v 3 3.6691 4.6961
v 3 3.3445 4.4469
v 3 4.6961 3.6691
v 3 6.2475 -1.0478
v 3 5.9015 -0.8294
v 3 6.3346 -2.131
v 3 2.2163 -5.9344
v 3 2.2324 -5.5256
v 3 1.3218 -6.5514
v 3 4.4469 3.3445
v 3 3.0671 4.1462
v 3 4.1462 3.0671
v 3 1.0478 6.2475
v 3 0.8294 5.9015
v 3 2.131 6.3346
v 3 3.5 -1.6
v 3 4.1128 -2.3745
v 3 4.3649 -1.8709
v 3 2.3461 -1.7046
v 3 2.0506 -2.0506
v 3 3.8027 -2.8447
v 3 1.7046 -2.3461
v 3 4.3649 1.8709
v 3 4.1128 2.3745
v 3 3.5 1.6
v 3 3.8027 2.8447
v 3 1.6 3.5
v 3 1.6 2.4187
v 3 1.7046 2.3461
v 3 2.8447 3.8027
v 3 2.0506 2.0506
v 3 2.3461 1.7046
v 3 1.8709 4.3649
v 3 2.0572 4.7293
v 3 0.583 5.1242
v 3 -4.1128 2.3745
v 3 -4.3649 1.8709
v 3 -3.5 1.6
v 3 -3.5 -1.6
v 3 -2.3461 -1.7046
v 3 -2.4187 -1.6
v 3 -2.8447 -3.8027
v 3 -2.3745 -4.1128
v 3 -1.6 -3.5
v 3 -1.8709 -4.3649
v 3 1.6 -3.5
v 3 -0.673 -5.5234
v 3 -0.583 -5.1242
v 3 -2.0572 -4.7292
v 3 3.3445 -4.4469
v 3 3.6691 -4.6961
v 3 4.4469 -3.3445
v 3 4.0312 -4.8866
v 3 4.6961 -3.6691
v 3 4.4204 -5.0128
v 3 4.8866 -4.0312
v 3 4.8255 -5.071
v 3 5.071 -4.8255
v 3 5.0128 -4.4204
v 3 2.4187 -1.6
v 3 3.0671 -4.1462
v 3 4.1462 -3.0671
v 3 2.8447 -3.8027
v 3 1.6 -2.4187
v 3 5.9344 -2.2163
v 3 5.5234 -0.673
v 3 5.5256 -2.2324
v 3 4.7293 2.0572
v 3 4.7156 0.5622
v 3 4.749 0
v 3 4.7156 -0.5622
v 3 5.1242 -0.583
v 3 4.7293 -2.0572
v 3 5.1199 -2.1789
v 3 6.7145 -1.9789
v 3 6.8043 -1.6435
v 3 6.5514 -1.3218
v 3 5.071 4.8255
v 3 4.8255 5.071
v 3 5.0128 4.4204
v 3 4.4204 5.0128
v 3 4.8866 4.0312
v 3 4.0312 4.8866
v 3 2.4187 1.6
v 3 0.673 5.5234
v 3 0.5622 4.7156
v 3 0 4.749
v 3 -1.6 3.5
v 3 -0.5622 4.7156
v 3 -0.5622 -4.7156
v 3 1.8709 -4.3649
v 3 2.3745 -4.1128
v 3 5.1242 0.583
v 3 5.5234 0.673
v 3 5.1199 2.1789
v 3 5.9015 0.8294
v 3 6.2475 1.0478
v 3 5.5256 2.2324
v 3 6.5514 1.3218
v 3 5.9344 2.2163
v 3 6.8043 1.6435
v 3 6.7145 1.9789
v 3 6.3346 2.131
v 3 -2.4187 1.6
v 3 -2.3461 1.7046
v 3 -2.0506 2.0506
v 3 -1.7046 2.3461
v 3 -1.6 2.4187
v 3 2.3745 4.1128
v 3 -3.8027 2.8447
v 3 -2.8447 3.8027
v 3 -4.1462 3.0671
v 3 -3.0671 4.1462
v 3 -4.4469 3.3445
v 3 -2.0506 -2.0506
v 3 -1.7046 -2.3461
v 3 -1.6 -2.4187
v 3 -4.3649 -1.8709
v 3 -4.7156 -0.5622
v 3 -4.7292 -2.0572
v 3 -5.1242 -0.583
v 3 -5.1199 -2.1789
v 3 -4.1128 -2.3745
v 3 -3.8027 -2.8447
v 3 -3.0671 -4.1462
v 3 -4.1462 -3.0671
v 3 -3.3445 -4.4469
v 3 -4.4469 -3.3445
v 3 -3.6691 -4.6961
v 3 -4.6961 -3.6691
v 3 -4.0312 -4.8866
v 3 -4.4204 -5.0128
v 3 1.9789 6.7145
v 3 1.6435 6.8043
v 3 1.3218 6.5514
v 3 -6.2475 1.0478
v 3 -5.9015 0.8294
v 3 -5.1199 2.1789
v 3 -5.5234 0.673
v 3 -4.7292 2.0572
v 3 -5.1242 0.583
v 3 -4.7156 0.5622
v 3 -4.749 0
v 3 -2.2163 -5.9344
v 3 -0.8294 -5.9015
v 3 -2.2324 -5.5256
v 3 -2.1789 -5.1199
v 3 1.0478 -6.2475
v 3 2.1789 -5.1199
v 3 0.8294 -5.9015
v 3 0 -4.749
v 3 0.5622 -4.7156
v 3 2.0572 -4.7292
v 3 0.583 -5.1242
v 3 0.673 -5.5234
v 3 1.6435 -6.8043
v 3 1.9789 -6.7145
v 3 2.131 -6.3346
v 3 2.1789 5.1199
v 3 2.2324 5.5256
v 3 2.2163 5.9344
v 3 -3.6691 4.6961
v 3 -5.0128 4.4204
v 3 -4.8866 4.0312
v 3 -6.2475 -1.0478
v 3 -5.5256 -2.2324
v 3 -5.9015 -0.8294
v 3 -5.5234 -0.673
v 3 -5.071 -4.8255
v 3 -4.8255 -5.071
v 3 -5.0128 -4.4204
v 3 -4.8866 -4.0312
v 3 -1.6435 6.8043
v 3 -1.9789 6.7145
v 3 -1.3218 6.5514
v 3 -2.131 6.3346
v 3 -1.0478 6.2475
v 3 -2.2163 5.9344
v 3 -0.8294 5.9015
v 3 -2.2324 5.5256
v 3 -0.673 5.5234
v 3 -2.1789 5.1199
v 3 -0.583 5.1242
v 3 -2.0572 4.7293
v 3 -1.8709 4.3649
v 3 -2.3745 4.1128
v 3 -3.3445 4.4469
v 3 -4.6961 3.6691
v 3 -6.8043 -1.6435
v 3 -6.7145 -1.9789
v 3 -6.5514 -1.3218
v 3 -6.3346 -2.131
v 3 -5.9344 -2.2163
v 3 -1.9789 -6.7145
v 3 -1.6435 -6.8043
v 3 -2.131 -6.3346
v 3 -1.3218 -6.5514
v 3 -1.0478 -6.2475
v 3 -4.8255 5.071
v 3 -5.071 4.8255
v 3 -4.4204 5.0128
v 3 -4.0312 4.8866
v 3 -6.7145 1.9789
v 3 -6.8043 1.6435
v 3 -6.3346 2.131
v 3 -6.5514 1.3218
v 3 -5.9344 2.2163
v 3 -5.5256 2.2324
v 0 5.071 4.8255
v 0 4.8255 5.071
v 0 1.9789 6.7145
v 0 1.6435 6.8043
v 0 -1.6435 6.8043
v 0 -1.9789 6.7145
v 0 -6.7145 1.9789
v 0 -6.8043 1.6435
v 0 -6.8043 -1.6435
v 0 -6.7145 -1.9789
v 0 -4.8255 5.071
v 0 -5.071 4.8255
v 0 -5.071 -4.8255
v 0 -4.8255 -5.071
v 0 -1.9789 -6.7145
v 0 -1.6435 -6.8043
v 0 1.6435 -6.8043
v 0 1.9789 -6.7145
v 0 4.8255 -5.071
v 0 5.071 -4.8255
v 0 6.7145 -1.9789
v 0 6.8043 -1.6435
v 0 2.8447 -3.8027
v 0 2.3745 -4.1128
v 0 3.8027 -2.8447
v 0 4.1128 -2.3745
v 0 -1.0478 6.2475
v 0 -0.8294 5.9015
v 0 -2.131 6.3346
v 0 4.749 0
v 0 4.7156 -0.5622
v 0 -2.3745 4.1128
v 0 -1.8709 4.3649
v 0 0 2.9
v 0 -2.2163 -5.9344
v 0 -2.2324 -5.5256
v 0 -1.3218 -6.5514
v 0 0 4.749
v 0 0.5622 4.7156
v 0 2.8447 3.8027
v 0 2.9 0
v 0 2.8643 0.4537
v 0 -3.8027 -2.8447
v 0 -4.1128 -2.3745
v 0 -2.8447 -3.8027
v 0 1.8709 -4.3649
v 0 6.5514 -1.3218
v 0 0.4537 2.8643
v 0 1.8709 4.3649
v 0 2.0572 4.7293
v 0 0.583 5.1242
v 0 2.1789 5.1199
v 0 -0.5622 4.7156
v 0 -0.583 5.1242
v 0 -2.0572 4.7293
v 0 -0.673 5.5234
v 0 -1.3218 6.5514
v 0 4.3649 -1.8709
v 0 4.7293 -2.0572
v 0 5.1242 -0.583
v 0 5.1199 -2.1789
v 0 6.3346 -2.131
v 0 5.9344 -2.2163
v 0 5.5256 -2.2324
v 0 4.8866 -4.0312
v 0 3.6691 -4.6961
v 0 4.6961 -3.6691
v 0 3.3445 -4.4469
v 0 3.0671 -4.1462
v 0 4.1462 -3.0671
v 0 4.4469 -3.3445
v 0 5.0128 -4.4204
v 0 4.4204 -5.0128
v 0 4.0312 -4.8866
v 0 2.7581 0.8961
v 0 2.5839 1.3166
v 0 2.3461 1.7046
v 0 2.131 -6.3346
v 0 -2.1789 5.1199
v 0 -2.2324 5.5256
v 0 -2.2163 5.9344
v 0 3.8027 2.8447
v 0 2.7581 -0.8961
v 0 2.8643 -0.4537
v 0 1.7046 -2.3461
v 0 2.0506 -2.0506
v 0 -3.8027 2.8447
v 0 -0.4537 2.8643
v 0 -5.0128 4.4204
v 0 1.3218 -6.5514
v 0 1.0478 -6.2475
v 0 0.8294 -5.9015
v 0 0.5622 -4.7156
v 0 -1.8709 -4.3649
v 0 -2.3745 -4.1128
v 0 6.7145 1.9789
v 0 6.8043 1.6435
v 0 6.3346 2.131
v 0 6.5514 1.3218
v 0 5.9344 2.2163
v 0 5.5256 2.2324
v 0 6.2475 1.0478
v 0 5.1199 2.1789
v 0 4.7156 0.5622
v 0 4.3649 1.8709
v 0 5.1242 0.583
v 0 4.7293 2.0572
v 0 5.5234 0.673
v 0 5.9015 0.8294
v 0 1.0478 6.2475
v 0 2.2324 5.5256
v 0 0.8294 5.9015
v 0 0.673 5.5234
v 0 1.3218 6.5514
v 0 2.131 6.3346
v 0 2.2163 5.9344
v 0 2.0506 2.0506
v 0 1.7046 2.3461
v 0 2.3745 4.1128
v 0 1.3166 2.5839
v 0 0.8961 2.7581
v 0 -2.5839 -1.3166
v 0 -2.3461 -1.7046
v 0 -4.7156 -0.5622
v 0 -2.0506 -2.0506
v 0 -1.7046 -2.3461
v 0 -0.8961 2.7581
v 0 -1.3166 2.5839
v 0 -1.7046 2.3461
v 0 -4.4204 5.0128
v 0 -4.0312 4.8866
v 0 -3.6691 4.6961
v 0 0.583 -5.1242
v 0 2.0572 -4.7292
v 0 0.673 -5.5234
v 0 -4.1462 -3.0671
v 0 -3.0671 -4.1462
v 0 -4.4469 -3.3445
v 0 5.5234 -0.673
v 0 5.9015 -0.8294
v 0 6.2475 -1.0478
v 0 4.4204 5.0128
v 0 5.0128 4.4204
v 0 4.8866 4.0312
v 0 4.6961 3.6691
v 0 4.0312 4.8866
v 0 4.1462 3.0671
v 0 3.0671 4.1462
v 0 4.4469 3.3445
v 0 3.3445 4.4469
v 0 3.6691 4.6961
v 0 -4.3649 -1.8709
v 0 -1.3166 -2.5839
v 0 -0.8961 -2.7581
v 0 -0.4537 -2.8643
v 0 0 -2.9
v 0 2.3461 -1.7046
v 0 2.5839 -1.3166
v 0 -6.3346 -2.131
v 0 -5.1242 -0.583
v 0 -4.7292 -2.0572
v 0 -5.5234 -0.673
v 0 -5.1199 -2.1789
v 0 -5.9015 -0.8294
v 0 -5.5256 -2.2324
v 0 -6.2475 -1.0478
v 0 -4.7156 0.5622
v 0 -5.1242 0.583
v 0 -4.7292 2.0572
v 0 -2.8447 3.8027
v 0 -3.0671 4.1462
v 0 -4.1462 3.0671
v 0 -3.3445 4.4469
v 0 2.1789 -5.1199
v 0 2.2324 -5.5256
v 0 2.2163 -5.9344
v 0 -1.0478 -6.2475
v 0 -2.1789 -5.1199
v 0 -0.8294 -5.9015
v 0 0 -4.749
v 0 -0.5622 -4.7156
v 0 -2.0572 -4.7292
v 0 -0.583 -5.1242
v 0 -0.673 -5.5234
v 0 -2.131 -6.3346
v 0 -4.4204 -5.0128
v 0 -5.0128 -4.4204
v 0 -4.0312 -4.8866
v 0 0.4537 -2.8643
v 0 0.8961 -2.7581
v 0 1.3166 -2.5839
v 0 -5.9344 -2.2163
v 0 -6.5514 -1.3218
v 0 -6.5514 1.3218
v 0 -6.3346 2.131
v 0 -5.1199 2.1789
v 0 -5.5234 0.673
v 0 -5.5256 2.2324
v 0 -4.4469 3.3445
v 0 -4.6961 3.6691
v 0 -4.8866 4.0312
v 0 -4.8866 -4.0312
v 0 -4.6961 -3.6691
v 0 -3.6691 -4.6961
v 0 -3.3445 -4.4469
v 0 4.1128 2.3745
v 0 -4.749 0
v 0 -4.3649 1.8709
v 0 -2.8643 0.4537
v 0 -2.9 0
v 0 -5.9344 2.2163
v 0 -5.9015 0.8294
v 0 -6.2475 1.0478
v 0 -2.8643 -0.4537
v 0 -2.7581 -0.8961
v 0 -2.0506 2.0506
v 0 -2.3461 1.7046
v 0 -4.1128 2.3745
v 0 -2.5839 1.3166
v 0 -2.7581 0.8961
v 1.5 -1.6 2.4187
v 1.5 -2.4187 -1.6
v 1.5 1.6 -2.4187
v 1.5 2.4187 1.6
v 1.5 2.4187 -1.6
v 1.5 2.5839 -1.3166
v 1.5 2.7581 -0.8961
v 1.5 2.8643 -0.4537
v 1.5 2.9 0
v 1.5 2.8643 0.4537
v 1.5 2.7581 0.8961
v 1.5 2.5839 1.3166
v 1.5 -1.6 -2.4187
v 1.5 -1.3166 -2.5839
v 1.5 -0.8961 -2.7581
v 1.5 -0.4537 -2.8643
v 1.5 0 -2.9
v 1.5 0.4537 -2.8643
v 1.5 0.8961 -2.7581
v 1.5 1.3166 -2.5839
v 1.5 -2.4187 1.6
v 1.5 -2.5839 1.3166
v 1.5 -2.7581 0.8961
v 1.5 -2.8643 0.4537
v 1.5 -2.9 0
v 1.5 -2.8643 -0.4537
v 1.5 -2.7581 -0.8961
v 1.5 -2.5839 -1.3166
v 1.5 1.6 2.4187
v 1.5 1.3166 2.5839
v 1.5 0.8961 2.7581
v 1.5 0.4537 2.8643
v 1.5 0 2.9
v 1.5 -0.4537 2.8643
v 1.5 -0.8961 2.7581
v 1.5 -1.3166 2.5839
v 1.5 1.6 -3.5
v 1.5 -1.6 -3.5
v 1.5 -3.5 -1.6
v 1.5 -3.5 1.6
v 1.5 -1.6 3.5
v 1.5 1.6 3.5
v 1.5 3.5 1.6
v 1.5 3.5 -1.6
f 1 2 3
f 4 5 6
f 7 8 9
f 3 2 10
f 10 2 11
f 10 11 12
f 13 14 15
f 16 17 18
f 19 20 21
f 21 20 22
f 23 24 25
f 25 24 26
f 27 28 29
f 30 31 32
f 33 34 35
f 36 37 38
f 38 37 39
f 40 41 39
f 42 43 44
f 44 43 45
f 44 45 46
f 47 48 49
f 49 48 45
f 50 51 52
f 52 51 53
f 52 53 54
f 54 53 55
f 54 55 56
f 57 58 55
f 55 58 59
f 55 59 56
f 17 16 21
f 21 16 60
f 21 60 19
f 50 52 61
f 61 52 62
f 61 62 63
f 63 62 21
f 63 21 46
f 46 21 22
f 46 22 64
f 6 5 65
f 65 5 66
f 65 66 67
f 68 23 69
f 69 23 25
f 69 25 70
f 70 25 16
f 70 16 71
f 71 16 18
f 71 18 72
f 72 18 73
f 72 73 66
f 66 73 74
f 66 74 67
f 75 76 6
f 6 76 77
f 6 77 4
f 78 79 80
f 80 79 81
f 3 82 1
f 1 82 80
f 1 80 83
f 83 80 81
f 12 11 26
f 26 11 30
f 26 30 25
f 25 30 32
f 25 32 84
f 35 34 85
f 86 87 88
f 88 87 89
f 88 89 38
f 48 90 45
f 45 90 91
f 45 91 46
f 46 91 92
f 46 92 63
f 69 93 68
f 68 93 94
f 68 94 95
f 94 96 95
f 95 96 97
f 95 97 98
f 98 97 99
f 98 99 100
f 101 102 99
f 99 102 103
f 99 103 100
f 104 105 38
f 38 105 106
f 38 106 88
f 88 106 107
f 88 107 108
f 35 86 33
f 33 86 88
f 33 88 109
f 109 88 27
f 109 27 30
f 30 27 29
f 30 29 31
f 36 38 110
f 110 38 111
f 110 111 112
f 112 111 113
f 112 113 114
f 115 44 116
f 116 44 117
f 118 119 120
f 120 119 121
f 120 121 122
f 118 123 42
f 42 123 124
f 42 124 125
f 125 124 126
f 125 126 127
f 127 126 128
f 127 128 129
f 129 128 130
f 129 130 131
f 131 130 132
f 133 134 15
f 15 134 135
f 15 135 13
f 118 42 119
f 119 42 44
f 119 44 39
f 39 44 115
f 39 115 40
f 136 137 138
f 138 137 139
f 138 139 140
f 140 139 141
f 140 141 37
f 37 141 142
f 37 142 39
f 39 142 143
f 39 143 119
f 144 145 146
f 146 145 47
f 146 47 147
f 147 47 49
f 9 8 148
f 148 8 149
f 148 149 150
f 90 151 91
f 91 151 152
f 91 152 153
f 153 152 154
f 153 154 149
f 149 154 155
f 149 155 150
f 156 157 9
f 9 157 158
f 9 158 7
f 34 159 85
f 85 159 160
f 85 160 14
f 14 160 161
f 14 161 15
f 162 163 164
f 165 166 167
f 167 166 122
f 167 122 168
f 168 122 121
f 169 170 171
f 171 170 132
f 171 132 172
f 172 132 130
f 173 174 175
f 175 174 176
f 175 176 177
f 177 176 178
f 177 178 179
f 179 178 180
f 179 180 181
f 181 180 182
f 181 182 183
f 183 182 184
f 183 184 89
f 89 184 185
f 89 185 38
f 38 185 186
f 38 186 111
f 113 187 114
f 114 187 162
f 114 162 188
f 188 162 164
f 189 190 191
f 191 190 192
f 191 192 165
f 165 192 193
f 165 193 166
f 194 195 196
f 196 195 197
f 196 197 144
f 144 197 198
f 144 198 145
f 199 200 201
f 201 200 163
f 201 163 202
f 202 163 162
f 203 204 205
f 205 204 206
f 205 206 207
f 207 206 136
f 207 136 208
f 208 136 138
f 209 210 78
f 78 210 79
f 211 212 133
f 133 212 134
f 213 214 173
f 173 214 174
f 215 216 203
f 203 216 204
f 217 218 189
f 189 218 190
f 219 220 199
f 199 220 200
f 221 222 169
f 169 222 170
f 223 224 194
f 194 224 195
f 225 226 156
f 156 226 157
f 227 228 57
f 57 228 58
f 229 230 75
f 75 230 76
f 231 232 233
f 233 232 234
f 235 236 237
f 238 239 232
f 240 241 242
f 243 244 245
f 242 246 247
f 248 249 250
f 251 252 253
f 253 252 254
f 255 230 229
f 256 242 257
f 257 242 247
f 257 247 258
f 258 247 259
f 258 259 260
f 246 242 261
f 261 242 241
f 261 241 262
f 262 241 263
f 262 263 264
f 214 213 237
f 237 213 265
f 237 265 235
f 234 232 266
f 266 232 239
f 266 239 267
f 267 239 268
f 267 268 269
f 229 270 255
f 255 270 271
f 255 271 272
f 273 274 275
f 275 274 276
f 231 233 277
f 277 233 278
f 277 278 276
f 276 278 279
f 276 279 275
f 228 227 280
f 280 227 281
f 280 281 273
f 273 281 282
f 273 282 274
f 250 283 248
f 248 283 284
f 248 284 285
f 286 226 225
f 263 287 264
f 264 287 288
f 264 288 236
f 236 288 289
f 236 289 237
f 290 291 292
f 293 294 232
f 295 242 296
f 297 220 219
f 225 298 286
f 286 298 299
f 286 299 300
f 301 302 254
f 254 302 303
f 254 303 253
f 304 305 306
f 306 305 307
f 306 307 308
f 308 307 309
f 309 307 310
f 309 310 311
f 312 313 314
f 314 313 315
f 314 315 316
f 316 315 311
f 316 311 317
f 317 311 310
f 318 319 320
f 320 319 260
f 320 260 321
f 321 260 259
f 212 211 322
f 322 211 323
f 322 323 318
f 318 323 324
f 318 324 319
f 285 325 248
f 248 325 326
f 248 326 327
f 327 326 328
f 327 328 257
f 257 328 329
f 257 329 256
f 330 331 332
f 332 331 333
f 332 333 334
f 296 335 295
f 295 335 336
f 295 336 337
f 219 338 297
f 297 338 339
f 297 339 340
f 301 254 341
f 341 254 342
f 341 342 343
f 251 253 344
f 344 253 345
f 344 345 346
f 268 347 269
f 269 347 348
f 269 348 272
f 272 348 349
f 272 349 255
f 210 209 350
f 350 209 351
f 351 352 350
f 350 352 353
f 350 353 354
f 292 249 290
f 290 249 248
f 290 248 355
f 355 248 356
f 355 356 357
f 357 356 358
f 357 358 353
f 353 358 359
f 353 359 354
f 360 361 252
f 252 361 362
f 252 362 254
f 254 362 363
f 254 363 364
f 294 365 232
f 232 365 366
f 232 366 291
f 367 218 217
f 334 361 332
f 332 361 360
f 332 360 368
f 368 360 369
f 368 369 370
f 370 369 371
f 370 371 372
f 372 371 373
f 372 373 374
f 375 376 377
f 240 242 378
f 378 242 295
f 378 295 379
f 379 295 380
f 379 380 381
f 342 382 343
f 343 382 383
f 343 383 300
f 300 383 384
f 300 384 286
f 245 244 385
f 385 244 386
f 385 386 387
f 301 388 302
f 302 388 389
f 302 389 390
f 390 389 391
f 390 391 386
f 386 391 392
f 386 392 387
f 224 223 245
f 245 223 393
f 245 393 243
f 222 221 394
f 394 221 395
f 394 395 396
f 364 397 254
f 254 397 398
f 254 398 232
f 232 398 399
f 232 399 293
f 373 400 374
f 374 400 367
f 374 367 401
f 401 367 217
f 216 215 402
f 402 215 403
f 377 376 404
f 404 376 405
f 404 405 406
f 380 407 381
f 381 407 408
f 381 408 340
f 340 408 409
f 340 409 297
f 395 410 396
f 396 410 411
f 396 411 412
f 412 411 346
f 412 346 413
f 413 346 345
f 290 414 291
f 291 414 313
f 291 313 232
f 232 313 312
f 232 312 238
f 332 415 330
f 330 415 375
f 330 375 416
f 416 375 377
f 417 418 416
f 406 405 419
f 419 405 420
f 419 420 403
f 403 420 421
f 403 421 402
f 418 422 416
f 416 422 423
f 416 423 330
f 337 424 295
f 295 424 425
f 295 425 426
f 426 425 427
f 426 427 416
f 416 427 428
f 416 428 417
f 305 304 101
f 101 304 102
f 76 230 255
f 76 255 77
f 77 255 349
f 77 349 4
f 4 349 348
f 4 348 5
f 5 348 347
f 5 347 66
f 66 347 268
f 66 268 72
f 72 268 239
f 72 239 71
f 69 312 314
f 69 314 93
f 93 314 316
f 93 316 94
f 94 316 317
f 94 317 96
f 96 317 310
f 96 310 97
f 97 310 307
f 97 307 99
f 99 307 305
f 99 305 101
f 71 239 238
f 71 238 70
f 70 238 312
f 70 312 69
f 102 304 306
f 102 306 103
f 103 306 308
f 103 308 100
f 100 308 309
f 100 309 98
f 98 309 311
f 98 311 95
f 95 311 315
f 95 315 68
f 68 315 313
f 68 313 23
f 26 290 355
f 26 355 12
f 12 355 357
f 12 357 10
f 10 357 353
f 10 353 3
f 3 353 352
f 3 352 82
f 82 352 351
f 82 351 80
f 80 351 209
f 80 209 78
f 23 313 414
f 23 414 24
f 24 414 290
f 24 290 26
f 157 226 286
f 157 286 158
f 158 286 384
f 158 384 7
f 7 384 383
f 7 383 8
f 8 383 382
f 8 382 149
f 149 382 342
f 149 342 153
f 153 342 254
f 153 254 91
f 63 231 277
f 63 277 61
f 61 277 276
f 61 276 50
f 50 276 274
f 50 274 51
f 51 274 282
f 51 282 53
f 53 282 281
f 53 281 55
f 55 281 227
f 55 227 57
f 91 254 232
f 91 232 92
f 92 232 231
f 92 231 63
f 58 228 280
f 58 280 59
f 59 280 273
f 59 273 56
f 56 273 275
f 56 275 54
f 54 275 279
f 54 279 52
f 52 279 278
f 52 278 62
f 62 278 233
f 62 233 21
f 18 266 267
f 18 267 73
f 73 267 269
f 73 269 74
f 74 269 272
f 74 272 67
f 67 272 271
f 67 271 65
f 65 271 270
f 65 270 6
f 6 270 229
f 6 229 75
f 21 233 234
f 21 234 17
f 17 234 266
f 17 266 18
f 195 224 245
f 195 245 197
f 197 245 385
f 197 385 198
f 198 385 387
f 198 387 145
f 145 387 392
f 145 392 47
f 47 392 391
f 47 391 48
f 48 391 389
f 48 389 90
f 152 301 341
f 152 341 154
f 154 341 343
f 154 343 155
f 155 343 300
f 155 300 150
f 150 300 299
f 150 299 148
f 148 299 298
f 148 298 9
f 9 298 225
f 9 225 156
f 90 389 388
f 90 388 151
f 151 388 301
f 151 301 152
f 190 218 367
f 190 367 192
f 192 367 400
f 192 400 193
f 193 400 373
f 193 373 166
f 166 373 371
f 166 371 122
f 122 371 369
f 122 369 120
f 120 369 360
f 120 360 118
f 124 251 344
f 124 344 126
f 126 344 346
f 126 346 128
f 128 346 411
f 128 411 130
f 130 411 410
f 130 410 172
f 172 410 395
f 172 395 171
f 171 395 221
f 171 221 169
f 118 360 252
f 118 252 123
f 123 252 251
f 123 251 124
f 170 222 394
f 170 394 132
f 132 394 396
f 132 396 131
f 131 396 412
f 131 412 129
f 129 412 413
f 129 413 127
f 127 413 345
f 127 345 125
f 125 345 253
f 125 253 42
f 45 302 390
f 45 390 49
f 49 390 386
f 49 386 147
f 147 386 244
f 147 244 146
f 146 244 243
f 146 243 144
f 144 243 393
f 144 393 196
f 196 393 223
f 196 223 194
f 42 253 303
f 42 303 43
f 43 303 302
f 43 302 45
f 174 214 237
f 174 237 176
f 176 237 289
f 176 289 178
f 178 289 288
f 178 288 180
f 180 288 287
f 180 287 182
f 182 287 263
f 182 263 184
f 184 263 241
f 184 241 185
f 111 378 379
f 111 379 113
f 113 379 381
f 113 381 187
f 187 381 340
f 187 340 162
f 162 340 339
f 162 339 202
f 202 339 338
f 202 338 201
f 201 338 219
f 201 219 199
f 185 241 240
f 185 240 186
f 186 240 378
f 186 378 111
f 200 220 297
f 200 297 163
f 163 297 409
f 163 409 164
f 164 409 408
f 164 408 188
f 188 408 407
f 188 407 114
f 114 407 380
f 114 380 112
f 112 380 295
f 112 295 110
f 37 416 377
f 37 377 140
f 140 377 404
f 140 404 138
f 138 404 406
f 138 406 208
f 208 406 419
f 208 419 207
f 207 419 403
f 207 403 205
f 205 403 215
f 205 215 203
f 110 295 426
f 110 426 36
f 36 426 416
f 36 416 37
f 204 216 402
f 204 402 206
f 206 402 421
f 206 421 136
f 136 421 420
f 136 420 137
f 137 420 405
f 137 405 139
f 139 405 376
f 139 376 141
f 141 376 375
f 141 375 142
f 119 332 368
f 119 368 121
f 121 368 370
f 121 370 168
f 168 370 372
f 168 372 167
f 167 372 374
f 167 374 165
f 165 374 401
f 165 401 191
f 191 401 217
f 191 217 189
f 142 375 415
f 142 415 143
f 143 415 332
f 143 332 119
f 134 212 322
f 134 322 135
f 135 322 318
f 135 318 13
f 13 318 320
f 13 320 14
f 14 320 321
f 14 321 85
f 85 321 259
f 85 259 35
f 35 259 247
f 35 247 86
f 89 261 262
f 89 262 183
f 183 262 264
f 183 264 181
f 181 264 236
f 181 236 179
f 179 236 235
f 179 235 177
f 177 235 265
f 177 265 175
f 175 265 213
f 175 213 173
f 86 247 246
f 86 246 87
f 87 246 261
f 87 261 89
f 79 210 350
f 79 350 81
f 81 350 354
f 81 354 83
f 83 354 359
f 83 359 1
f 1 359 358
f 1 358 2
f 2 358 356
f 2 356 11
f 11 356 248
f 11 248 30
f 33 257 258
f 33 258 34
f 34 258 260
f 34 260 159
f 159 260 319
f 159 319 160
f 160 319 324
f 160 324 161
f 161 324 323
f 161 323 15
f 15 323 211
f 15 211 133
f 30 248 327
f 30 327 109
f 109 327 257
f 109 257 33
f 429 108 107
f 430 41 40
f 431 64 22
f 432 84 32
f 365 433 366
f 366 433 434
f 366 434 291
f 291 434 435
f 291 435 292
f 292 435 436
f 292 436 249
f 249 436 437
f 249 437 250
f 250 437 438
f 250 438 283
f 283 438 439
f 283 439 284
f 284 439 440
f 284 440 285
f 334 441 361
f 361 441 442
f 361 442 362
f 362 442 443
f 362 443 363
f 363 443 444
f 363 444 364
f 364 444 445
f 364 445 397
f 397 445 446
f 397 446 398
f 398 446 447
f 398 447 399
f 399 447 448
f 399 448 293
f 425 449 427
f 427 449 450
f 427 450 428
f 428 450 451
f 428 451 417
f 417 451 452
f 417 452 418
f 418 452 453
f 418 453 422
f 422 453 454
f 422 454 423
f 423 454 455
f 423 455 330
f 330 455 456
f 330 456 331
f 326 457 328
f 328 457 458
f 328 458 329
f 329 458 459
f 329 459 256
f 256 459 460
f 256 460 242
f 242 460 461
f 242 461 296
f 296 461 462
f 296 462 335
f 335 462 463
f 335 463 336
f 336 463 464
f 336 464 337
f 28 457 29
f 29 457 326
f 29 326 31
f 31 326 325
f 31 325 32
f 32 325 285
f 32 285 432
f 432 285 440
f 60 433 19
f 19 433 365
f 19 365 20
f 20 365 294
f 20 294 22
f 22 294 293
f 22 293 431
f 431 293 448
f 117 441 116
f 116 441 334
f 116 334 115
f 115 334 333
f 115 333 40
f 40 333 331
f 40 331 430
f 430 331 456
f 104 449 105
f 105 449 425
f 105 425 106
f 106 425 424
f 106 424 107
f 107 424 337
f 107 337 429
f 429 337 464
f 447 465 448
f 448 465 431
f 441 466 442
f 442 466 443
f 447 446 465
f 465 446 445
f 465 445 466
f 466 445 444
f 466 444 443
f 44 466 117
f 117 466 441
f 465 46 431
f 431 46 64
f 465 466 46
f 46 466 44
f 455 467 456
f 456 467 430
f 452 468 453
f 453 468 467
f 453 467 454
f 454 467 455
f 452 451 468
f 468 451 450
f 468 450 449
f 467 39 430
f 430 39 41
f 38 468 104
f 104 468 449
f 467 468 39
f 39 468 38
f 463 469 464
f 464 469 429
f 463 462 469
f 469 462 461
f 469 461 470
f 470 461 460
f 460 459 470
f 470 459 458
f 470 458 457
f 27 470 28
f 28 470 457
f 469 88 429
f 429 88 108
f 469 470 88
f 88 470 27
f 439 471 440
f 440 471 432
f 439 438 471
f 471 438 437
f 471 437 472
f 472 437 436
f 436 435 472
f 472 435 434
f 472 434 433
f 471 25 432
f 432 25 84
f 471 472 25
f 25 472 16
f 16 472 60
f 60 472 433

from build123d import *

# Parameters (mm, degrees)
BASPROSKE_W         = 3
BASPROSKE_H         = 7
TOOTHCUT_DEPTH      = 11.344080433
TEETHCUTS_COUNT     = 12
BORSKE_R            = 2.9
BORE_DEPTH          = 50.0000508
CUT_EXTRUDE_1_DEPTH = 1.5


with BuildPart() as part:
    # BasProSke → Base-Revolve (revolve)
    with BuildSketch(Plane(origin=(0, 0, 0), x_dir=(1, 0, 0), z_dir=(0, 1, 0)), mode=Mode.PRIVATE) as base_revolve_sk:
        with Locations((1.5, 3.5)):
            Rectangle(BASPROSKE_W, BASPROSKE_H)
    revolve(base_revolve_sk.sketch.rotate(Axis((-10, 0, 0), (1, 0, 0)), 180), axis=Axis((-10, 0, 0), (1, 0, 0)))

    # TooCutSke → ToothCut (cut, through all)
    with BuildSketch(Plane(origin=(0, 0, 0), x_dir=(0, 0, -1), z_dir=(1, 0, 0))):
        with BuildLine():
            ThreePointArc((0.562207301, 4.715604304), (0, 4.749), (-0.562207301, 4.715604304))
            ThreePointArc((-0.562207301, 4.715604304), (-0.837528627, 5.917009812), (-1.672850686, 6.823328788))
            ThreePointArc((-1.672850686, 6.823328788), (0, 7.0254), (1.672850686, 6.823328788))
            ThreePointArc((1.672850686, 6.823328788), (0.837528627, 5.917009812), (0.562207301, 4.715604304))
        make_face()
    toothcut = extrude(amount=TOOTHCUT_DEPTH, mode=Mode.SUBTRACT)

    # TeethCuts: ToothCut ×12 about axis
    teethcuts_axis = Axis((0, 0, 0), (1, 0, 0))
    for i in range(1, TEETHCUTS_COUNT):
        add(toothcut.rotate(teethcuts_axis, i * 360 / TEETHCUTS_COUNT), mode=Mode.SUBTRACT)

    # BorSke → Bore (cut, symmetric)
    with BuildSketch(Plane(origin=(0, 0, 0), x_dir=(0, 0, -1), z_dir=(1, 0, 0))):
        with Locations(Location((0, 0, 0), (0, 0, 180))):
            Circle(BORSKE_R)
    extrude(amount=BORE_DEPTH, both=True, mode=Mode.SUBTRACT)

    # 草图1 → 切除-拉伸1 (cut)
    with BuildSketch(Plane(origin=(3, 0, 0), x_dir=(0, 0, -1), z_dir=(1, 0, 0))):
        Polygon((-1.6, -1.6), (-1.6, -3.5), (1.6, -3.5), (1.6, -1.6), (3.5, -1.6), (3.5, 1.6), (1.6, 1.6), (1.6, 3.5), (-1.6, 3.5), (-1.6, 1.6), (-3.5, 1.6), (-3.5, -1.6), align=None)
    extrude(amount=-CUT_EXTRUDE_1_DEPTH, mode=Mode.SUBTRACT)


solid = part.part
